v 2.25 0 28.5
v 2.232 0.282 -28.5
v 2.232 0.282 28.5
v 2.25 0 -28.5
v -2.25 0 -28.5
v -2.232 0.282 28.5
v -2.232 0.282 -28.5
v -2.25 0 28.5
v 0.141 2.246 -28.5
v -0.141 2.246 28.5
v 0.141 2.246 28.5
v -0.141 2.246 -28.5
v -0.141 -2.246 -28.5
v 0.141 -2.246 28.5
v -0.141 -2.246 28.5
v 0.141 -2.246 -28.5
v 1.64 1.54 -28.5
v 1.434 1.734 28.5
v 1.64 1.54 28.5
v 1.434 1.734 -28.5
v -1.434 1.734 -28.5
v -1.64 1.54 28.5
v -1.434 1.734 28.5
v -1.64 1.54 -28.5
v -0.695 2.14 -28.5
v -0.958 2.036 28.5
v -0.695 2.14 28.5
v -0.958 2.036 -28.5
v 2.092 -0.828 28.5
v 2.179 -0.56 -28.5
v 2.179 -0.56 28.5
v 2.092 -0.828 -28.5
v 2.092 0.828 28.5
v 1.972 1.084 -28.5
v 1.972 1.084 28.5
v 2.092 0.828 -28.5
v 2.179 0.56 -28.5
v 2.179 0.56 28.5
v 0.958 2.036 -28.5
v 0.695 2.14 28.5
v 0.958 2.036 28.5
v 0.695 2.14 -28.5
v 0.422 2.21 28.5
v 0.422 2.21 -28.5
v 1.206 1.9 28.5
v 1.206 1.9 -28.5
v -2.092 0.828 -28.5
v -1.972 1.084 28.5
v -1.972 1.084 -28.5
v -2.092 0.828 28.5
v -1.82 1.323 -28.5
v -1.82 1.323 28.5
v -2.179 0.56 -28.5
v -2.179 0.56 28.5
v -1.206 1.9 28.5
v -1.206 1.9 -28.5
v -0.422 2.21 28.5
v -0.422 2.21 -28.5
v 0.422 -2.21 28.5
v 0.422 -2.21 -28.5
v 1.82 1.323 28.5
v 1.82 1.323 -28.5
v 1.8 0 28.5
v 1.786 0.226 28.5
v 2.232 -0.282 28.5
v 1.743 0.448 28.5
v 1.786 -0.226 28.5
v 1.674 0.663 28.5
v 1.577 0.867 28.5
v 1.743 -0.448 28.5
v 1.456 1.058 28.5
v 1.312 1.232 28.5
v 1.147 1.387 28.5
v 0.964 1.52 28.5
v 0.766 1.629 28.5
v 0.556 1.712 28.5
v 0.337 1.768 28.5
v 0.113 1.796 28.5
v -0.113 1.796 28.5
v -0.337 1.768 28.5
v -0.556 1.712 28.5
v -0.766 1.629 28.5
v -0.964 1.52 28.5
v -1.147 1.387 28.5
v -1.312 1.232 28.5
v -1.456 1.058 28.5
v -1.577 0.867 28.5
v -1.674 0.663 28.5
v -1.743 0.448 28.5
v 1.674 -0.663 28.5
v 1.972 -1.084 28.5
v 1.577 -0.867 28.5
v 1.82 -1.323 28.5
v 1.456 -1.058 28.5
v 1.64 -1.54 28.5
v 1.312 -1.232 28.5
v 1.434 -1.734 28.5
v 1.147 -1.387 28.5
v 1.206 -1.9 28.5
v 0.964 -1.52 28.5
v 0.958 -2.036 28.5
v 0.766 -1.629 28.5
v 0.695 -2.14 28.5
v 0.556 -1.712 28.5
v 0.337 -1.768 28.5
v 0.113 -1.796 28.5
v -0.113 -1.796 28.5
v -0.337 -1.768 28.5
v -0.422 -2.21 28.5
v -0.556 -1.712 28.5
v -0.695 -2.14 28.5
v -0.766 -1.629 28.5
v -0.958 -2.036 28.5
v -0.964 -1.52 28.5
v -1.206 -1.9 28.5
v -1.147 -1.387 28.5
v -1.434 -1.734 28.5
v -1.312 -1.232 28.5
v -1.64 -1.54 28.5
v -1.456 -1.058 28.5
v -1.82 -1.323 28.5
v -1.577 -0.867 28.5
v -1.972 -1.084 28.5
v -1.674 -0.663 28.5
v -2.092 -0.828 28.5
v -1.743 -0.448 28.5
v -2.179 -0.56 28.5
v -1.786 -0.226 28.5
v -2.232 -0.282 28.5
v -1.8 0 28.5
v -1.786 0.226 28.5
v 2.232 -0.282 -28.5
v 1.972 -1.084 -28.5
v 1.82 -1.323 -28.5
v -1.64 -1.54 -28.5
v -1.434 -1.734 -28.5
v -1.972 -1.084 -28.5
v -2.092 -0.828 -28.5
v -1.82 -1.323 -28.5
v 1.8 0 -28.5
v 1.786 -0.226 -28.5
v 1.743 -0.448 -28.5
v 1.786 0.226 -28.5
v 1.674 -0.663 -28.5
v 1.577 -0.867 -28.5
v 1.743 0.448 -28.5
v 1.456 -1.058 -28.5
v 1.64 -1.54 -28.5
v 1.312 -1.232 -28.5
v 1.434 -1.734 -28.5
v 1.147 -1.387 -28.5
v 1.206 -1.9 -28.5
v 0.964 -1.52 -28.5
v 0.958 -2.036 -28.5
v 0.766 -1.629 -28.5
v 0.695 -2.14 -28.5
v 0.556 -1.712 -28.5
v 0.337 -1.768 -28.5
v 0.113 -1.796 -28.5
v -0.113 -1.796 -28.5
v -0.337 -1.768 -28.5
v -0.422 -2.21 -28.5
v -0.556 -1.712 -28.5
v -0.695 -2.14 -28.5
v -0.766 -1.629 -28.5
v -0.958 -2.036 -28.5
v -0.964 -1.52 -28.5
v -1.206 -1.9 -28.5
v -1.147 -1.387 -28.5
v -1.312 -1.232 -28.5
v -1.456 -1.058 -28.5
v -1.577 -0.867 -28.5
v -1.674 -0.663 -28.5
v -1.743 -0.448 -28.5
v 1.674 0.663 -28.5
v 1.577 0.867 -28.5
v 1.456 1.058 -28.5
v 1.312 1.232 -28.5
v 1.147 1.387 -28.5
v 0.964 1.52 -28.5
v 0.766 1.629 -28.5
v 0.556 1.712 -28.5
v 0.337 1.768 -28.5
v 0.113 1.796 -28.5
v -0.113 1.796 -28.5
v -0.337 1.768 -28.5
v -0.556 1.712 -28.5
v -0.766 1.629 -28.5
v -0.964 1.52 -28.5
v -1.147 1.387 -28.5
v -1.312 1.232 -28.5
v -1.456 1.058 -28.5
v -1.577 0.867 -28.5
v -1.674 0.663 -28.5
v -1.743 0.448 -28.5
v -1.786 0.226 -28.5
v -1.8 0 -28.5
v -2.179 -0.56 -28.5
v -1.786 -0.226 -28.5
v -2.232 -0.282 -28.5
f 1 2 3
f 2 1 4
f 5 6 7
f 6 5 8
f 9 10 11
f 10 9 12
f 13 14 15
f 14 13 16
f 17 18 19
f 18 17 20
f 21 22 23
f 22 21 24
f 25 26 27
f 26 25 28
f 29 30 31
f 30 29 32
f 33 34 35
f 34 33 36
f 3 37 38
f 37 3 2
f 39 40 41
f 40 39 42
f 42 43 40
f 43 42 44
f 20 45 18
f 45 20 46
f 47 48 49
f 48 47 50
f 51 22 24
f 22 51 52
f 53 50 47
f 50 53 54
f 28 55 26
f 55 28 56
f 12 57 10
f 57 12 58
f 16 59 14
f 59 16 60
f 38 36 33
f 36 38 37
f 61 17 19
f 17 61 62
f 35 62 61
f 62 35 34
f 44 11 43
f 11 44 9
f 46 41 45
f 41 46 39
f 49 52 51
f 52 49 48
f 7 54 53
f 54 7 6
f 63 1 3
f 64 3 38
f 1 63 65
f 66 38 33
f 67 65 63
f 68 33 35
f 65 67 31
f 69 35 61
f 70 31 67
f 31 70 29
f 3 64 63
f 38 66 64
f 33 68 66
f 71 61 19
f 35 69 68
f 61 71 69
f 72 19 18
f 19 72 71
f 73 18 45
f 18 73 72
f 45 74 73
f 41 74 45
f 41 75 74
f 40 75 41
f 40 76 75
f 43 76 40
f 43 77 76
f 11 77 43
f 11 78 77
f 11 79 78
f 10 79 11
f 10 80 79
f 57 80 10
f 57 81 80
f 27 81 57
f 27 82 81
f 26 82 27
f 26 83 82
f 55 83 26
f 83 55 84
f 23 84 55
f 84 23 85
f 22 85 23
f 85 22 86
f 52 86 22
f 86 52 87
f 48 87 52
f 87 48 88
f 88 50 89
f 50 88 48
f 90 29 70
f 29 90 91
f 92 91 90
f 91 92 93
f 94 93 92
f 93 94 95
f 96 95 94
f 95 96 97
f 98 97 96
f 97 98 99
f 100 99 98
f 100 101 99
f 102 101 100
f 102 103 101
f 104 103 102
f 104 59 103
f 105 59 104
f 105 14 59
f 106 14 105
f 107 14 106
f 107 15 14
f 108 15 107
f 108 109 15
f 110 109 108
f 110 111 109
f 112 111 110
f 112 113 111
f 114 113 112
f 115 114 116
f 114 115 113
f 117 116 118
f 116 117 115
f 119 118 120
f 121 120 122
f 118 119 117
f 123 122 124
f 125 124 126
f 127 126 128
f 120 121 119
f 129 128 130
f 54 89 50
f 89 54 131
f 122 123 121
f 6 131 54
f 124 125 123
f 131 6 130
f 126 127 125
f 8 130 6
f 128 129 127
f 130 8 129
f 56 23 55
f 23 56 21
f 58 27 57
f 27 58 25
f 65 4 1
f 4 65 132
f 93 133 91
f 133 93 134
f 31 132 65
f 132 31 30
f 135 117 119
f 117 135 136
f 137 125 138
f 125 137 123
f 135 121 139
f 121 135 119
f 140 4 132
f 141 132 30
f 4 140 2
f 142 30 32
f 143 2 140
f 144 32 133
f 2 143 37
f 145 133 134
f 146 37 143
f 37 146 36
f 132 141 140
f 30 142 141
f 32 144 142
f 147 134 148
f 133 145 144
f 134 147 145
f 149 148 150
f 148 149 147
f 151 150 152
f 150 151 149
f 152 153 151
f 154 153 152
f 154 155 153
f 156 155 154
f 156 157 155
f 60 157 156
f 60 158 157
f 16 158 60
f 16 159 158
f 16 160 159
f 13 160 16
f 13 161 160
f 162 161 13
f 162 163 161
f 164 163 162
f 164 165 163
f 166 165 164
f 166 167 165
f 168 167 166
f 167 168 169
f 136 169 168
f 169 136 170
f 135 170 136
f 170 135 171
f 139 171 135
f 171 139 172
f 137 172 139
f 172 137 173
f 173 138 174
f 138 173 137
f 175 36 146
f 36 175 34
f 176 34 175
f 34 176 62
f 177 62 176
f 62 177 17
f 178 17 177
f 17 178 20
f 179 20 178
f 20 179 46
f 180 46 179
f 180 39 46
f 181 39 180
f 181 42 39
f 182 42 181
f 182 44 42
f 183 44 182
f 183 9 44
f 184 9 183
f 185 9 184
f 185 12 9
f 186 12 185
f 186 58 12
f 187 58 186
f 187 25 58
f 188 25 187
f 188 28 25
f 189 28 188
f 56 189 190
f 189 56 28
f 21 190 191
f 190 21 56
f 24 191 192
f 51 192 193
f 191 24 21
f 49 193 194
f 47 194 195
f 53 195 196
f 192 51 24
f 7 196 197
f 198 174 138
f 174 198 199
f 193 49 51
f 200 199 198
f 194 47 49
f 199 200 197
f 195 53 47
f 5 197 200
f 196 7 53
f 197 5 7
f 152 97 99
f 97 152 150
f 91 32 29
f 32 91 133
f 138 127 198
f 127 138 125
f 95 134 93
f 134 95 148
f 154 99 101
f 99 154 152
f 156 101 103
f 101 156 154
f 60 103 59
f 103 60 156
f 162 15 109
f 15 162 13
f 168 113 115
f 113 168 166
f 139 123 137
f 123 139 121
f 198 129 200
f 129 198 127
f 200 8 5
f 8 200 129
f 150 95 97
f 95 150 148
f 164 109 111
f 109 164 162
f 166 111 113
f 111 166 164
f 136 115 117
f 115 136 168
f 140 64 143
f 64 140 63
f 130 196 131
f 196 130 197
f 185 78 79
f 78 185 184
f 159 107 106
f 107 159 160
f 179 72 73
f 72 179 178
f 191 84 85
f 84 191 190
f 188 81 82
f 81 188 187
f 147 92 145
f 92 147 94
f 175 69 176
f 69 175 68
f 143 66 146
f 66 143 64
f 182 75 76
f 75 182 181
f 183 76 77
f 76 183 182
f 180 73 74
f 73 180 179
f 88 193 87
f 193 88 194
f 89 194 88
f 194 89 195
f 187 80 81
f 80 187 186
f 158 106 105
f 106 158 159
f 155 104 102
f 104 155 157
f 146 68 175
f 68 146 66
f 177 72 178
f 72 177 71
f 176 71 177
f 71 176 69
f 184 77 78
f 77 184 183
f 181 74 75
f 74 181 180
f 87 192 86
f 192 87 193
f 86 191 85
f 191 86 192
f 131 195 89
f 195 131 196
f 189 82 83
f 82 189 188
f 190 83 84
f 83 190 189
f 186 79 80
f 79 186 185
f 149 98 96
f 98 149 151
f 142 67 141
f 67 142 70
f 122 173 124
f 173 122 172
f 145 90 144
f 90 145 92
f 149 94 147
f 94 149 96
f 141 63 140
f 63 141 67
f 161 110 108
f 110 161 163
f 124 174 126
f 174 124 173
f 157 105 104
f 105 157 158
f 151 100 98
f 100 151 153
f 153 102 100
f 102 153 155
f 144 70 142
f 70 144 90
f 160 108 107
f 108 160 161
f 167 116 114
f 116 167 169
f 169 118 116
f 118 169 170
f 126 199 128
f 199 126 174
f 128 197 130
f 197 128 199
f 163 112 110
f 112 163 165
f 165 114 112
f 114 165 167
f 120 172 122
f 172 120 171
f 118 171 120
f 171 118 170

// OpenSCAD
$fn = 50;


difference() {
	union() {
		translate(v = [0, 0, -28.5000000000]) {
			cylinder(h = 57, r = 2.2500000000);
		}
	}
	union() {
		translate(v = [0, 0, -100.0000000000]) {
			cylinder(h = 200, r = 1.8000000000);
		}
	}
}
